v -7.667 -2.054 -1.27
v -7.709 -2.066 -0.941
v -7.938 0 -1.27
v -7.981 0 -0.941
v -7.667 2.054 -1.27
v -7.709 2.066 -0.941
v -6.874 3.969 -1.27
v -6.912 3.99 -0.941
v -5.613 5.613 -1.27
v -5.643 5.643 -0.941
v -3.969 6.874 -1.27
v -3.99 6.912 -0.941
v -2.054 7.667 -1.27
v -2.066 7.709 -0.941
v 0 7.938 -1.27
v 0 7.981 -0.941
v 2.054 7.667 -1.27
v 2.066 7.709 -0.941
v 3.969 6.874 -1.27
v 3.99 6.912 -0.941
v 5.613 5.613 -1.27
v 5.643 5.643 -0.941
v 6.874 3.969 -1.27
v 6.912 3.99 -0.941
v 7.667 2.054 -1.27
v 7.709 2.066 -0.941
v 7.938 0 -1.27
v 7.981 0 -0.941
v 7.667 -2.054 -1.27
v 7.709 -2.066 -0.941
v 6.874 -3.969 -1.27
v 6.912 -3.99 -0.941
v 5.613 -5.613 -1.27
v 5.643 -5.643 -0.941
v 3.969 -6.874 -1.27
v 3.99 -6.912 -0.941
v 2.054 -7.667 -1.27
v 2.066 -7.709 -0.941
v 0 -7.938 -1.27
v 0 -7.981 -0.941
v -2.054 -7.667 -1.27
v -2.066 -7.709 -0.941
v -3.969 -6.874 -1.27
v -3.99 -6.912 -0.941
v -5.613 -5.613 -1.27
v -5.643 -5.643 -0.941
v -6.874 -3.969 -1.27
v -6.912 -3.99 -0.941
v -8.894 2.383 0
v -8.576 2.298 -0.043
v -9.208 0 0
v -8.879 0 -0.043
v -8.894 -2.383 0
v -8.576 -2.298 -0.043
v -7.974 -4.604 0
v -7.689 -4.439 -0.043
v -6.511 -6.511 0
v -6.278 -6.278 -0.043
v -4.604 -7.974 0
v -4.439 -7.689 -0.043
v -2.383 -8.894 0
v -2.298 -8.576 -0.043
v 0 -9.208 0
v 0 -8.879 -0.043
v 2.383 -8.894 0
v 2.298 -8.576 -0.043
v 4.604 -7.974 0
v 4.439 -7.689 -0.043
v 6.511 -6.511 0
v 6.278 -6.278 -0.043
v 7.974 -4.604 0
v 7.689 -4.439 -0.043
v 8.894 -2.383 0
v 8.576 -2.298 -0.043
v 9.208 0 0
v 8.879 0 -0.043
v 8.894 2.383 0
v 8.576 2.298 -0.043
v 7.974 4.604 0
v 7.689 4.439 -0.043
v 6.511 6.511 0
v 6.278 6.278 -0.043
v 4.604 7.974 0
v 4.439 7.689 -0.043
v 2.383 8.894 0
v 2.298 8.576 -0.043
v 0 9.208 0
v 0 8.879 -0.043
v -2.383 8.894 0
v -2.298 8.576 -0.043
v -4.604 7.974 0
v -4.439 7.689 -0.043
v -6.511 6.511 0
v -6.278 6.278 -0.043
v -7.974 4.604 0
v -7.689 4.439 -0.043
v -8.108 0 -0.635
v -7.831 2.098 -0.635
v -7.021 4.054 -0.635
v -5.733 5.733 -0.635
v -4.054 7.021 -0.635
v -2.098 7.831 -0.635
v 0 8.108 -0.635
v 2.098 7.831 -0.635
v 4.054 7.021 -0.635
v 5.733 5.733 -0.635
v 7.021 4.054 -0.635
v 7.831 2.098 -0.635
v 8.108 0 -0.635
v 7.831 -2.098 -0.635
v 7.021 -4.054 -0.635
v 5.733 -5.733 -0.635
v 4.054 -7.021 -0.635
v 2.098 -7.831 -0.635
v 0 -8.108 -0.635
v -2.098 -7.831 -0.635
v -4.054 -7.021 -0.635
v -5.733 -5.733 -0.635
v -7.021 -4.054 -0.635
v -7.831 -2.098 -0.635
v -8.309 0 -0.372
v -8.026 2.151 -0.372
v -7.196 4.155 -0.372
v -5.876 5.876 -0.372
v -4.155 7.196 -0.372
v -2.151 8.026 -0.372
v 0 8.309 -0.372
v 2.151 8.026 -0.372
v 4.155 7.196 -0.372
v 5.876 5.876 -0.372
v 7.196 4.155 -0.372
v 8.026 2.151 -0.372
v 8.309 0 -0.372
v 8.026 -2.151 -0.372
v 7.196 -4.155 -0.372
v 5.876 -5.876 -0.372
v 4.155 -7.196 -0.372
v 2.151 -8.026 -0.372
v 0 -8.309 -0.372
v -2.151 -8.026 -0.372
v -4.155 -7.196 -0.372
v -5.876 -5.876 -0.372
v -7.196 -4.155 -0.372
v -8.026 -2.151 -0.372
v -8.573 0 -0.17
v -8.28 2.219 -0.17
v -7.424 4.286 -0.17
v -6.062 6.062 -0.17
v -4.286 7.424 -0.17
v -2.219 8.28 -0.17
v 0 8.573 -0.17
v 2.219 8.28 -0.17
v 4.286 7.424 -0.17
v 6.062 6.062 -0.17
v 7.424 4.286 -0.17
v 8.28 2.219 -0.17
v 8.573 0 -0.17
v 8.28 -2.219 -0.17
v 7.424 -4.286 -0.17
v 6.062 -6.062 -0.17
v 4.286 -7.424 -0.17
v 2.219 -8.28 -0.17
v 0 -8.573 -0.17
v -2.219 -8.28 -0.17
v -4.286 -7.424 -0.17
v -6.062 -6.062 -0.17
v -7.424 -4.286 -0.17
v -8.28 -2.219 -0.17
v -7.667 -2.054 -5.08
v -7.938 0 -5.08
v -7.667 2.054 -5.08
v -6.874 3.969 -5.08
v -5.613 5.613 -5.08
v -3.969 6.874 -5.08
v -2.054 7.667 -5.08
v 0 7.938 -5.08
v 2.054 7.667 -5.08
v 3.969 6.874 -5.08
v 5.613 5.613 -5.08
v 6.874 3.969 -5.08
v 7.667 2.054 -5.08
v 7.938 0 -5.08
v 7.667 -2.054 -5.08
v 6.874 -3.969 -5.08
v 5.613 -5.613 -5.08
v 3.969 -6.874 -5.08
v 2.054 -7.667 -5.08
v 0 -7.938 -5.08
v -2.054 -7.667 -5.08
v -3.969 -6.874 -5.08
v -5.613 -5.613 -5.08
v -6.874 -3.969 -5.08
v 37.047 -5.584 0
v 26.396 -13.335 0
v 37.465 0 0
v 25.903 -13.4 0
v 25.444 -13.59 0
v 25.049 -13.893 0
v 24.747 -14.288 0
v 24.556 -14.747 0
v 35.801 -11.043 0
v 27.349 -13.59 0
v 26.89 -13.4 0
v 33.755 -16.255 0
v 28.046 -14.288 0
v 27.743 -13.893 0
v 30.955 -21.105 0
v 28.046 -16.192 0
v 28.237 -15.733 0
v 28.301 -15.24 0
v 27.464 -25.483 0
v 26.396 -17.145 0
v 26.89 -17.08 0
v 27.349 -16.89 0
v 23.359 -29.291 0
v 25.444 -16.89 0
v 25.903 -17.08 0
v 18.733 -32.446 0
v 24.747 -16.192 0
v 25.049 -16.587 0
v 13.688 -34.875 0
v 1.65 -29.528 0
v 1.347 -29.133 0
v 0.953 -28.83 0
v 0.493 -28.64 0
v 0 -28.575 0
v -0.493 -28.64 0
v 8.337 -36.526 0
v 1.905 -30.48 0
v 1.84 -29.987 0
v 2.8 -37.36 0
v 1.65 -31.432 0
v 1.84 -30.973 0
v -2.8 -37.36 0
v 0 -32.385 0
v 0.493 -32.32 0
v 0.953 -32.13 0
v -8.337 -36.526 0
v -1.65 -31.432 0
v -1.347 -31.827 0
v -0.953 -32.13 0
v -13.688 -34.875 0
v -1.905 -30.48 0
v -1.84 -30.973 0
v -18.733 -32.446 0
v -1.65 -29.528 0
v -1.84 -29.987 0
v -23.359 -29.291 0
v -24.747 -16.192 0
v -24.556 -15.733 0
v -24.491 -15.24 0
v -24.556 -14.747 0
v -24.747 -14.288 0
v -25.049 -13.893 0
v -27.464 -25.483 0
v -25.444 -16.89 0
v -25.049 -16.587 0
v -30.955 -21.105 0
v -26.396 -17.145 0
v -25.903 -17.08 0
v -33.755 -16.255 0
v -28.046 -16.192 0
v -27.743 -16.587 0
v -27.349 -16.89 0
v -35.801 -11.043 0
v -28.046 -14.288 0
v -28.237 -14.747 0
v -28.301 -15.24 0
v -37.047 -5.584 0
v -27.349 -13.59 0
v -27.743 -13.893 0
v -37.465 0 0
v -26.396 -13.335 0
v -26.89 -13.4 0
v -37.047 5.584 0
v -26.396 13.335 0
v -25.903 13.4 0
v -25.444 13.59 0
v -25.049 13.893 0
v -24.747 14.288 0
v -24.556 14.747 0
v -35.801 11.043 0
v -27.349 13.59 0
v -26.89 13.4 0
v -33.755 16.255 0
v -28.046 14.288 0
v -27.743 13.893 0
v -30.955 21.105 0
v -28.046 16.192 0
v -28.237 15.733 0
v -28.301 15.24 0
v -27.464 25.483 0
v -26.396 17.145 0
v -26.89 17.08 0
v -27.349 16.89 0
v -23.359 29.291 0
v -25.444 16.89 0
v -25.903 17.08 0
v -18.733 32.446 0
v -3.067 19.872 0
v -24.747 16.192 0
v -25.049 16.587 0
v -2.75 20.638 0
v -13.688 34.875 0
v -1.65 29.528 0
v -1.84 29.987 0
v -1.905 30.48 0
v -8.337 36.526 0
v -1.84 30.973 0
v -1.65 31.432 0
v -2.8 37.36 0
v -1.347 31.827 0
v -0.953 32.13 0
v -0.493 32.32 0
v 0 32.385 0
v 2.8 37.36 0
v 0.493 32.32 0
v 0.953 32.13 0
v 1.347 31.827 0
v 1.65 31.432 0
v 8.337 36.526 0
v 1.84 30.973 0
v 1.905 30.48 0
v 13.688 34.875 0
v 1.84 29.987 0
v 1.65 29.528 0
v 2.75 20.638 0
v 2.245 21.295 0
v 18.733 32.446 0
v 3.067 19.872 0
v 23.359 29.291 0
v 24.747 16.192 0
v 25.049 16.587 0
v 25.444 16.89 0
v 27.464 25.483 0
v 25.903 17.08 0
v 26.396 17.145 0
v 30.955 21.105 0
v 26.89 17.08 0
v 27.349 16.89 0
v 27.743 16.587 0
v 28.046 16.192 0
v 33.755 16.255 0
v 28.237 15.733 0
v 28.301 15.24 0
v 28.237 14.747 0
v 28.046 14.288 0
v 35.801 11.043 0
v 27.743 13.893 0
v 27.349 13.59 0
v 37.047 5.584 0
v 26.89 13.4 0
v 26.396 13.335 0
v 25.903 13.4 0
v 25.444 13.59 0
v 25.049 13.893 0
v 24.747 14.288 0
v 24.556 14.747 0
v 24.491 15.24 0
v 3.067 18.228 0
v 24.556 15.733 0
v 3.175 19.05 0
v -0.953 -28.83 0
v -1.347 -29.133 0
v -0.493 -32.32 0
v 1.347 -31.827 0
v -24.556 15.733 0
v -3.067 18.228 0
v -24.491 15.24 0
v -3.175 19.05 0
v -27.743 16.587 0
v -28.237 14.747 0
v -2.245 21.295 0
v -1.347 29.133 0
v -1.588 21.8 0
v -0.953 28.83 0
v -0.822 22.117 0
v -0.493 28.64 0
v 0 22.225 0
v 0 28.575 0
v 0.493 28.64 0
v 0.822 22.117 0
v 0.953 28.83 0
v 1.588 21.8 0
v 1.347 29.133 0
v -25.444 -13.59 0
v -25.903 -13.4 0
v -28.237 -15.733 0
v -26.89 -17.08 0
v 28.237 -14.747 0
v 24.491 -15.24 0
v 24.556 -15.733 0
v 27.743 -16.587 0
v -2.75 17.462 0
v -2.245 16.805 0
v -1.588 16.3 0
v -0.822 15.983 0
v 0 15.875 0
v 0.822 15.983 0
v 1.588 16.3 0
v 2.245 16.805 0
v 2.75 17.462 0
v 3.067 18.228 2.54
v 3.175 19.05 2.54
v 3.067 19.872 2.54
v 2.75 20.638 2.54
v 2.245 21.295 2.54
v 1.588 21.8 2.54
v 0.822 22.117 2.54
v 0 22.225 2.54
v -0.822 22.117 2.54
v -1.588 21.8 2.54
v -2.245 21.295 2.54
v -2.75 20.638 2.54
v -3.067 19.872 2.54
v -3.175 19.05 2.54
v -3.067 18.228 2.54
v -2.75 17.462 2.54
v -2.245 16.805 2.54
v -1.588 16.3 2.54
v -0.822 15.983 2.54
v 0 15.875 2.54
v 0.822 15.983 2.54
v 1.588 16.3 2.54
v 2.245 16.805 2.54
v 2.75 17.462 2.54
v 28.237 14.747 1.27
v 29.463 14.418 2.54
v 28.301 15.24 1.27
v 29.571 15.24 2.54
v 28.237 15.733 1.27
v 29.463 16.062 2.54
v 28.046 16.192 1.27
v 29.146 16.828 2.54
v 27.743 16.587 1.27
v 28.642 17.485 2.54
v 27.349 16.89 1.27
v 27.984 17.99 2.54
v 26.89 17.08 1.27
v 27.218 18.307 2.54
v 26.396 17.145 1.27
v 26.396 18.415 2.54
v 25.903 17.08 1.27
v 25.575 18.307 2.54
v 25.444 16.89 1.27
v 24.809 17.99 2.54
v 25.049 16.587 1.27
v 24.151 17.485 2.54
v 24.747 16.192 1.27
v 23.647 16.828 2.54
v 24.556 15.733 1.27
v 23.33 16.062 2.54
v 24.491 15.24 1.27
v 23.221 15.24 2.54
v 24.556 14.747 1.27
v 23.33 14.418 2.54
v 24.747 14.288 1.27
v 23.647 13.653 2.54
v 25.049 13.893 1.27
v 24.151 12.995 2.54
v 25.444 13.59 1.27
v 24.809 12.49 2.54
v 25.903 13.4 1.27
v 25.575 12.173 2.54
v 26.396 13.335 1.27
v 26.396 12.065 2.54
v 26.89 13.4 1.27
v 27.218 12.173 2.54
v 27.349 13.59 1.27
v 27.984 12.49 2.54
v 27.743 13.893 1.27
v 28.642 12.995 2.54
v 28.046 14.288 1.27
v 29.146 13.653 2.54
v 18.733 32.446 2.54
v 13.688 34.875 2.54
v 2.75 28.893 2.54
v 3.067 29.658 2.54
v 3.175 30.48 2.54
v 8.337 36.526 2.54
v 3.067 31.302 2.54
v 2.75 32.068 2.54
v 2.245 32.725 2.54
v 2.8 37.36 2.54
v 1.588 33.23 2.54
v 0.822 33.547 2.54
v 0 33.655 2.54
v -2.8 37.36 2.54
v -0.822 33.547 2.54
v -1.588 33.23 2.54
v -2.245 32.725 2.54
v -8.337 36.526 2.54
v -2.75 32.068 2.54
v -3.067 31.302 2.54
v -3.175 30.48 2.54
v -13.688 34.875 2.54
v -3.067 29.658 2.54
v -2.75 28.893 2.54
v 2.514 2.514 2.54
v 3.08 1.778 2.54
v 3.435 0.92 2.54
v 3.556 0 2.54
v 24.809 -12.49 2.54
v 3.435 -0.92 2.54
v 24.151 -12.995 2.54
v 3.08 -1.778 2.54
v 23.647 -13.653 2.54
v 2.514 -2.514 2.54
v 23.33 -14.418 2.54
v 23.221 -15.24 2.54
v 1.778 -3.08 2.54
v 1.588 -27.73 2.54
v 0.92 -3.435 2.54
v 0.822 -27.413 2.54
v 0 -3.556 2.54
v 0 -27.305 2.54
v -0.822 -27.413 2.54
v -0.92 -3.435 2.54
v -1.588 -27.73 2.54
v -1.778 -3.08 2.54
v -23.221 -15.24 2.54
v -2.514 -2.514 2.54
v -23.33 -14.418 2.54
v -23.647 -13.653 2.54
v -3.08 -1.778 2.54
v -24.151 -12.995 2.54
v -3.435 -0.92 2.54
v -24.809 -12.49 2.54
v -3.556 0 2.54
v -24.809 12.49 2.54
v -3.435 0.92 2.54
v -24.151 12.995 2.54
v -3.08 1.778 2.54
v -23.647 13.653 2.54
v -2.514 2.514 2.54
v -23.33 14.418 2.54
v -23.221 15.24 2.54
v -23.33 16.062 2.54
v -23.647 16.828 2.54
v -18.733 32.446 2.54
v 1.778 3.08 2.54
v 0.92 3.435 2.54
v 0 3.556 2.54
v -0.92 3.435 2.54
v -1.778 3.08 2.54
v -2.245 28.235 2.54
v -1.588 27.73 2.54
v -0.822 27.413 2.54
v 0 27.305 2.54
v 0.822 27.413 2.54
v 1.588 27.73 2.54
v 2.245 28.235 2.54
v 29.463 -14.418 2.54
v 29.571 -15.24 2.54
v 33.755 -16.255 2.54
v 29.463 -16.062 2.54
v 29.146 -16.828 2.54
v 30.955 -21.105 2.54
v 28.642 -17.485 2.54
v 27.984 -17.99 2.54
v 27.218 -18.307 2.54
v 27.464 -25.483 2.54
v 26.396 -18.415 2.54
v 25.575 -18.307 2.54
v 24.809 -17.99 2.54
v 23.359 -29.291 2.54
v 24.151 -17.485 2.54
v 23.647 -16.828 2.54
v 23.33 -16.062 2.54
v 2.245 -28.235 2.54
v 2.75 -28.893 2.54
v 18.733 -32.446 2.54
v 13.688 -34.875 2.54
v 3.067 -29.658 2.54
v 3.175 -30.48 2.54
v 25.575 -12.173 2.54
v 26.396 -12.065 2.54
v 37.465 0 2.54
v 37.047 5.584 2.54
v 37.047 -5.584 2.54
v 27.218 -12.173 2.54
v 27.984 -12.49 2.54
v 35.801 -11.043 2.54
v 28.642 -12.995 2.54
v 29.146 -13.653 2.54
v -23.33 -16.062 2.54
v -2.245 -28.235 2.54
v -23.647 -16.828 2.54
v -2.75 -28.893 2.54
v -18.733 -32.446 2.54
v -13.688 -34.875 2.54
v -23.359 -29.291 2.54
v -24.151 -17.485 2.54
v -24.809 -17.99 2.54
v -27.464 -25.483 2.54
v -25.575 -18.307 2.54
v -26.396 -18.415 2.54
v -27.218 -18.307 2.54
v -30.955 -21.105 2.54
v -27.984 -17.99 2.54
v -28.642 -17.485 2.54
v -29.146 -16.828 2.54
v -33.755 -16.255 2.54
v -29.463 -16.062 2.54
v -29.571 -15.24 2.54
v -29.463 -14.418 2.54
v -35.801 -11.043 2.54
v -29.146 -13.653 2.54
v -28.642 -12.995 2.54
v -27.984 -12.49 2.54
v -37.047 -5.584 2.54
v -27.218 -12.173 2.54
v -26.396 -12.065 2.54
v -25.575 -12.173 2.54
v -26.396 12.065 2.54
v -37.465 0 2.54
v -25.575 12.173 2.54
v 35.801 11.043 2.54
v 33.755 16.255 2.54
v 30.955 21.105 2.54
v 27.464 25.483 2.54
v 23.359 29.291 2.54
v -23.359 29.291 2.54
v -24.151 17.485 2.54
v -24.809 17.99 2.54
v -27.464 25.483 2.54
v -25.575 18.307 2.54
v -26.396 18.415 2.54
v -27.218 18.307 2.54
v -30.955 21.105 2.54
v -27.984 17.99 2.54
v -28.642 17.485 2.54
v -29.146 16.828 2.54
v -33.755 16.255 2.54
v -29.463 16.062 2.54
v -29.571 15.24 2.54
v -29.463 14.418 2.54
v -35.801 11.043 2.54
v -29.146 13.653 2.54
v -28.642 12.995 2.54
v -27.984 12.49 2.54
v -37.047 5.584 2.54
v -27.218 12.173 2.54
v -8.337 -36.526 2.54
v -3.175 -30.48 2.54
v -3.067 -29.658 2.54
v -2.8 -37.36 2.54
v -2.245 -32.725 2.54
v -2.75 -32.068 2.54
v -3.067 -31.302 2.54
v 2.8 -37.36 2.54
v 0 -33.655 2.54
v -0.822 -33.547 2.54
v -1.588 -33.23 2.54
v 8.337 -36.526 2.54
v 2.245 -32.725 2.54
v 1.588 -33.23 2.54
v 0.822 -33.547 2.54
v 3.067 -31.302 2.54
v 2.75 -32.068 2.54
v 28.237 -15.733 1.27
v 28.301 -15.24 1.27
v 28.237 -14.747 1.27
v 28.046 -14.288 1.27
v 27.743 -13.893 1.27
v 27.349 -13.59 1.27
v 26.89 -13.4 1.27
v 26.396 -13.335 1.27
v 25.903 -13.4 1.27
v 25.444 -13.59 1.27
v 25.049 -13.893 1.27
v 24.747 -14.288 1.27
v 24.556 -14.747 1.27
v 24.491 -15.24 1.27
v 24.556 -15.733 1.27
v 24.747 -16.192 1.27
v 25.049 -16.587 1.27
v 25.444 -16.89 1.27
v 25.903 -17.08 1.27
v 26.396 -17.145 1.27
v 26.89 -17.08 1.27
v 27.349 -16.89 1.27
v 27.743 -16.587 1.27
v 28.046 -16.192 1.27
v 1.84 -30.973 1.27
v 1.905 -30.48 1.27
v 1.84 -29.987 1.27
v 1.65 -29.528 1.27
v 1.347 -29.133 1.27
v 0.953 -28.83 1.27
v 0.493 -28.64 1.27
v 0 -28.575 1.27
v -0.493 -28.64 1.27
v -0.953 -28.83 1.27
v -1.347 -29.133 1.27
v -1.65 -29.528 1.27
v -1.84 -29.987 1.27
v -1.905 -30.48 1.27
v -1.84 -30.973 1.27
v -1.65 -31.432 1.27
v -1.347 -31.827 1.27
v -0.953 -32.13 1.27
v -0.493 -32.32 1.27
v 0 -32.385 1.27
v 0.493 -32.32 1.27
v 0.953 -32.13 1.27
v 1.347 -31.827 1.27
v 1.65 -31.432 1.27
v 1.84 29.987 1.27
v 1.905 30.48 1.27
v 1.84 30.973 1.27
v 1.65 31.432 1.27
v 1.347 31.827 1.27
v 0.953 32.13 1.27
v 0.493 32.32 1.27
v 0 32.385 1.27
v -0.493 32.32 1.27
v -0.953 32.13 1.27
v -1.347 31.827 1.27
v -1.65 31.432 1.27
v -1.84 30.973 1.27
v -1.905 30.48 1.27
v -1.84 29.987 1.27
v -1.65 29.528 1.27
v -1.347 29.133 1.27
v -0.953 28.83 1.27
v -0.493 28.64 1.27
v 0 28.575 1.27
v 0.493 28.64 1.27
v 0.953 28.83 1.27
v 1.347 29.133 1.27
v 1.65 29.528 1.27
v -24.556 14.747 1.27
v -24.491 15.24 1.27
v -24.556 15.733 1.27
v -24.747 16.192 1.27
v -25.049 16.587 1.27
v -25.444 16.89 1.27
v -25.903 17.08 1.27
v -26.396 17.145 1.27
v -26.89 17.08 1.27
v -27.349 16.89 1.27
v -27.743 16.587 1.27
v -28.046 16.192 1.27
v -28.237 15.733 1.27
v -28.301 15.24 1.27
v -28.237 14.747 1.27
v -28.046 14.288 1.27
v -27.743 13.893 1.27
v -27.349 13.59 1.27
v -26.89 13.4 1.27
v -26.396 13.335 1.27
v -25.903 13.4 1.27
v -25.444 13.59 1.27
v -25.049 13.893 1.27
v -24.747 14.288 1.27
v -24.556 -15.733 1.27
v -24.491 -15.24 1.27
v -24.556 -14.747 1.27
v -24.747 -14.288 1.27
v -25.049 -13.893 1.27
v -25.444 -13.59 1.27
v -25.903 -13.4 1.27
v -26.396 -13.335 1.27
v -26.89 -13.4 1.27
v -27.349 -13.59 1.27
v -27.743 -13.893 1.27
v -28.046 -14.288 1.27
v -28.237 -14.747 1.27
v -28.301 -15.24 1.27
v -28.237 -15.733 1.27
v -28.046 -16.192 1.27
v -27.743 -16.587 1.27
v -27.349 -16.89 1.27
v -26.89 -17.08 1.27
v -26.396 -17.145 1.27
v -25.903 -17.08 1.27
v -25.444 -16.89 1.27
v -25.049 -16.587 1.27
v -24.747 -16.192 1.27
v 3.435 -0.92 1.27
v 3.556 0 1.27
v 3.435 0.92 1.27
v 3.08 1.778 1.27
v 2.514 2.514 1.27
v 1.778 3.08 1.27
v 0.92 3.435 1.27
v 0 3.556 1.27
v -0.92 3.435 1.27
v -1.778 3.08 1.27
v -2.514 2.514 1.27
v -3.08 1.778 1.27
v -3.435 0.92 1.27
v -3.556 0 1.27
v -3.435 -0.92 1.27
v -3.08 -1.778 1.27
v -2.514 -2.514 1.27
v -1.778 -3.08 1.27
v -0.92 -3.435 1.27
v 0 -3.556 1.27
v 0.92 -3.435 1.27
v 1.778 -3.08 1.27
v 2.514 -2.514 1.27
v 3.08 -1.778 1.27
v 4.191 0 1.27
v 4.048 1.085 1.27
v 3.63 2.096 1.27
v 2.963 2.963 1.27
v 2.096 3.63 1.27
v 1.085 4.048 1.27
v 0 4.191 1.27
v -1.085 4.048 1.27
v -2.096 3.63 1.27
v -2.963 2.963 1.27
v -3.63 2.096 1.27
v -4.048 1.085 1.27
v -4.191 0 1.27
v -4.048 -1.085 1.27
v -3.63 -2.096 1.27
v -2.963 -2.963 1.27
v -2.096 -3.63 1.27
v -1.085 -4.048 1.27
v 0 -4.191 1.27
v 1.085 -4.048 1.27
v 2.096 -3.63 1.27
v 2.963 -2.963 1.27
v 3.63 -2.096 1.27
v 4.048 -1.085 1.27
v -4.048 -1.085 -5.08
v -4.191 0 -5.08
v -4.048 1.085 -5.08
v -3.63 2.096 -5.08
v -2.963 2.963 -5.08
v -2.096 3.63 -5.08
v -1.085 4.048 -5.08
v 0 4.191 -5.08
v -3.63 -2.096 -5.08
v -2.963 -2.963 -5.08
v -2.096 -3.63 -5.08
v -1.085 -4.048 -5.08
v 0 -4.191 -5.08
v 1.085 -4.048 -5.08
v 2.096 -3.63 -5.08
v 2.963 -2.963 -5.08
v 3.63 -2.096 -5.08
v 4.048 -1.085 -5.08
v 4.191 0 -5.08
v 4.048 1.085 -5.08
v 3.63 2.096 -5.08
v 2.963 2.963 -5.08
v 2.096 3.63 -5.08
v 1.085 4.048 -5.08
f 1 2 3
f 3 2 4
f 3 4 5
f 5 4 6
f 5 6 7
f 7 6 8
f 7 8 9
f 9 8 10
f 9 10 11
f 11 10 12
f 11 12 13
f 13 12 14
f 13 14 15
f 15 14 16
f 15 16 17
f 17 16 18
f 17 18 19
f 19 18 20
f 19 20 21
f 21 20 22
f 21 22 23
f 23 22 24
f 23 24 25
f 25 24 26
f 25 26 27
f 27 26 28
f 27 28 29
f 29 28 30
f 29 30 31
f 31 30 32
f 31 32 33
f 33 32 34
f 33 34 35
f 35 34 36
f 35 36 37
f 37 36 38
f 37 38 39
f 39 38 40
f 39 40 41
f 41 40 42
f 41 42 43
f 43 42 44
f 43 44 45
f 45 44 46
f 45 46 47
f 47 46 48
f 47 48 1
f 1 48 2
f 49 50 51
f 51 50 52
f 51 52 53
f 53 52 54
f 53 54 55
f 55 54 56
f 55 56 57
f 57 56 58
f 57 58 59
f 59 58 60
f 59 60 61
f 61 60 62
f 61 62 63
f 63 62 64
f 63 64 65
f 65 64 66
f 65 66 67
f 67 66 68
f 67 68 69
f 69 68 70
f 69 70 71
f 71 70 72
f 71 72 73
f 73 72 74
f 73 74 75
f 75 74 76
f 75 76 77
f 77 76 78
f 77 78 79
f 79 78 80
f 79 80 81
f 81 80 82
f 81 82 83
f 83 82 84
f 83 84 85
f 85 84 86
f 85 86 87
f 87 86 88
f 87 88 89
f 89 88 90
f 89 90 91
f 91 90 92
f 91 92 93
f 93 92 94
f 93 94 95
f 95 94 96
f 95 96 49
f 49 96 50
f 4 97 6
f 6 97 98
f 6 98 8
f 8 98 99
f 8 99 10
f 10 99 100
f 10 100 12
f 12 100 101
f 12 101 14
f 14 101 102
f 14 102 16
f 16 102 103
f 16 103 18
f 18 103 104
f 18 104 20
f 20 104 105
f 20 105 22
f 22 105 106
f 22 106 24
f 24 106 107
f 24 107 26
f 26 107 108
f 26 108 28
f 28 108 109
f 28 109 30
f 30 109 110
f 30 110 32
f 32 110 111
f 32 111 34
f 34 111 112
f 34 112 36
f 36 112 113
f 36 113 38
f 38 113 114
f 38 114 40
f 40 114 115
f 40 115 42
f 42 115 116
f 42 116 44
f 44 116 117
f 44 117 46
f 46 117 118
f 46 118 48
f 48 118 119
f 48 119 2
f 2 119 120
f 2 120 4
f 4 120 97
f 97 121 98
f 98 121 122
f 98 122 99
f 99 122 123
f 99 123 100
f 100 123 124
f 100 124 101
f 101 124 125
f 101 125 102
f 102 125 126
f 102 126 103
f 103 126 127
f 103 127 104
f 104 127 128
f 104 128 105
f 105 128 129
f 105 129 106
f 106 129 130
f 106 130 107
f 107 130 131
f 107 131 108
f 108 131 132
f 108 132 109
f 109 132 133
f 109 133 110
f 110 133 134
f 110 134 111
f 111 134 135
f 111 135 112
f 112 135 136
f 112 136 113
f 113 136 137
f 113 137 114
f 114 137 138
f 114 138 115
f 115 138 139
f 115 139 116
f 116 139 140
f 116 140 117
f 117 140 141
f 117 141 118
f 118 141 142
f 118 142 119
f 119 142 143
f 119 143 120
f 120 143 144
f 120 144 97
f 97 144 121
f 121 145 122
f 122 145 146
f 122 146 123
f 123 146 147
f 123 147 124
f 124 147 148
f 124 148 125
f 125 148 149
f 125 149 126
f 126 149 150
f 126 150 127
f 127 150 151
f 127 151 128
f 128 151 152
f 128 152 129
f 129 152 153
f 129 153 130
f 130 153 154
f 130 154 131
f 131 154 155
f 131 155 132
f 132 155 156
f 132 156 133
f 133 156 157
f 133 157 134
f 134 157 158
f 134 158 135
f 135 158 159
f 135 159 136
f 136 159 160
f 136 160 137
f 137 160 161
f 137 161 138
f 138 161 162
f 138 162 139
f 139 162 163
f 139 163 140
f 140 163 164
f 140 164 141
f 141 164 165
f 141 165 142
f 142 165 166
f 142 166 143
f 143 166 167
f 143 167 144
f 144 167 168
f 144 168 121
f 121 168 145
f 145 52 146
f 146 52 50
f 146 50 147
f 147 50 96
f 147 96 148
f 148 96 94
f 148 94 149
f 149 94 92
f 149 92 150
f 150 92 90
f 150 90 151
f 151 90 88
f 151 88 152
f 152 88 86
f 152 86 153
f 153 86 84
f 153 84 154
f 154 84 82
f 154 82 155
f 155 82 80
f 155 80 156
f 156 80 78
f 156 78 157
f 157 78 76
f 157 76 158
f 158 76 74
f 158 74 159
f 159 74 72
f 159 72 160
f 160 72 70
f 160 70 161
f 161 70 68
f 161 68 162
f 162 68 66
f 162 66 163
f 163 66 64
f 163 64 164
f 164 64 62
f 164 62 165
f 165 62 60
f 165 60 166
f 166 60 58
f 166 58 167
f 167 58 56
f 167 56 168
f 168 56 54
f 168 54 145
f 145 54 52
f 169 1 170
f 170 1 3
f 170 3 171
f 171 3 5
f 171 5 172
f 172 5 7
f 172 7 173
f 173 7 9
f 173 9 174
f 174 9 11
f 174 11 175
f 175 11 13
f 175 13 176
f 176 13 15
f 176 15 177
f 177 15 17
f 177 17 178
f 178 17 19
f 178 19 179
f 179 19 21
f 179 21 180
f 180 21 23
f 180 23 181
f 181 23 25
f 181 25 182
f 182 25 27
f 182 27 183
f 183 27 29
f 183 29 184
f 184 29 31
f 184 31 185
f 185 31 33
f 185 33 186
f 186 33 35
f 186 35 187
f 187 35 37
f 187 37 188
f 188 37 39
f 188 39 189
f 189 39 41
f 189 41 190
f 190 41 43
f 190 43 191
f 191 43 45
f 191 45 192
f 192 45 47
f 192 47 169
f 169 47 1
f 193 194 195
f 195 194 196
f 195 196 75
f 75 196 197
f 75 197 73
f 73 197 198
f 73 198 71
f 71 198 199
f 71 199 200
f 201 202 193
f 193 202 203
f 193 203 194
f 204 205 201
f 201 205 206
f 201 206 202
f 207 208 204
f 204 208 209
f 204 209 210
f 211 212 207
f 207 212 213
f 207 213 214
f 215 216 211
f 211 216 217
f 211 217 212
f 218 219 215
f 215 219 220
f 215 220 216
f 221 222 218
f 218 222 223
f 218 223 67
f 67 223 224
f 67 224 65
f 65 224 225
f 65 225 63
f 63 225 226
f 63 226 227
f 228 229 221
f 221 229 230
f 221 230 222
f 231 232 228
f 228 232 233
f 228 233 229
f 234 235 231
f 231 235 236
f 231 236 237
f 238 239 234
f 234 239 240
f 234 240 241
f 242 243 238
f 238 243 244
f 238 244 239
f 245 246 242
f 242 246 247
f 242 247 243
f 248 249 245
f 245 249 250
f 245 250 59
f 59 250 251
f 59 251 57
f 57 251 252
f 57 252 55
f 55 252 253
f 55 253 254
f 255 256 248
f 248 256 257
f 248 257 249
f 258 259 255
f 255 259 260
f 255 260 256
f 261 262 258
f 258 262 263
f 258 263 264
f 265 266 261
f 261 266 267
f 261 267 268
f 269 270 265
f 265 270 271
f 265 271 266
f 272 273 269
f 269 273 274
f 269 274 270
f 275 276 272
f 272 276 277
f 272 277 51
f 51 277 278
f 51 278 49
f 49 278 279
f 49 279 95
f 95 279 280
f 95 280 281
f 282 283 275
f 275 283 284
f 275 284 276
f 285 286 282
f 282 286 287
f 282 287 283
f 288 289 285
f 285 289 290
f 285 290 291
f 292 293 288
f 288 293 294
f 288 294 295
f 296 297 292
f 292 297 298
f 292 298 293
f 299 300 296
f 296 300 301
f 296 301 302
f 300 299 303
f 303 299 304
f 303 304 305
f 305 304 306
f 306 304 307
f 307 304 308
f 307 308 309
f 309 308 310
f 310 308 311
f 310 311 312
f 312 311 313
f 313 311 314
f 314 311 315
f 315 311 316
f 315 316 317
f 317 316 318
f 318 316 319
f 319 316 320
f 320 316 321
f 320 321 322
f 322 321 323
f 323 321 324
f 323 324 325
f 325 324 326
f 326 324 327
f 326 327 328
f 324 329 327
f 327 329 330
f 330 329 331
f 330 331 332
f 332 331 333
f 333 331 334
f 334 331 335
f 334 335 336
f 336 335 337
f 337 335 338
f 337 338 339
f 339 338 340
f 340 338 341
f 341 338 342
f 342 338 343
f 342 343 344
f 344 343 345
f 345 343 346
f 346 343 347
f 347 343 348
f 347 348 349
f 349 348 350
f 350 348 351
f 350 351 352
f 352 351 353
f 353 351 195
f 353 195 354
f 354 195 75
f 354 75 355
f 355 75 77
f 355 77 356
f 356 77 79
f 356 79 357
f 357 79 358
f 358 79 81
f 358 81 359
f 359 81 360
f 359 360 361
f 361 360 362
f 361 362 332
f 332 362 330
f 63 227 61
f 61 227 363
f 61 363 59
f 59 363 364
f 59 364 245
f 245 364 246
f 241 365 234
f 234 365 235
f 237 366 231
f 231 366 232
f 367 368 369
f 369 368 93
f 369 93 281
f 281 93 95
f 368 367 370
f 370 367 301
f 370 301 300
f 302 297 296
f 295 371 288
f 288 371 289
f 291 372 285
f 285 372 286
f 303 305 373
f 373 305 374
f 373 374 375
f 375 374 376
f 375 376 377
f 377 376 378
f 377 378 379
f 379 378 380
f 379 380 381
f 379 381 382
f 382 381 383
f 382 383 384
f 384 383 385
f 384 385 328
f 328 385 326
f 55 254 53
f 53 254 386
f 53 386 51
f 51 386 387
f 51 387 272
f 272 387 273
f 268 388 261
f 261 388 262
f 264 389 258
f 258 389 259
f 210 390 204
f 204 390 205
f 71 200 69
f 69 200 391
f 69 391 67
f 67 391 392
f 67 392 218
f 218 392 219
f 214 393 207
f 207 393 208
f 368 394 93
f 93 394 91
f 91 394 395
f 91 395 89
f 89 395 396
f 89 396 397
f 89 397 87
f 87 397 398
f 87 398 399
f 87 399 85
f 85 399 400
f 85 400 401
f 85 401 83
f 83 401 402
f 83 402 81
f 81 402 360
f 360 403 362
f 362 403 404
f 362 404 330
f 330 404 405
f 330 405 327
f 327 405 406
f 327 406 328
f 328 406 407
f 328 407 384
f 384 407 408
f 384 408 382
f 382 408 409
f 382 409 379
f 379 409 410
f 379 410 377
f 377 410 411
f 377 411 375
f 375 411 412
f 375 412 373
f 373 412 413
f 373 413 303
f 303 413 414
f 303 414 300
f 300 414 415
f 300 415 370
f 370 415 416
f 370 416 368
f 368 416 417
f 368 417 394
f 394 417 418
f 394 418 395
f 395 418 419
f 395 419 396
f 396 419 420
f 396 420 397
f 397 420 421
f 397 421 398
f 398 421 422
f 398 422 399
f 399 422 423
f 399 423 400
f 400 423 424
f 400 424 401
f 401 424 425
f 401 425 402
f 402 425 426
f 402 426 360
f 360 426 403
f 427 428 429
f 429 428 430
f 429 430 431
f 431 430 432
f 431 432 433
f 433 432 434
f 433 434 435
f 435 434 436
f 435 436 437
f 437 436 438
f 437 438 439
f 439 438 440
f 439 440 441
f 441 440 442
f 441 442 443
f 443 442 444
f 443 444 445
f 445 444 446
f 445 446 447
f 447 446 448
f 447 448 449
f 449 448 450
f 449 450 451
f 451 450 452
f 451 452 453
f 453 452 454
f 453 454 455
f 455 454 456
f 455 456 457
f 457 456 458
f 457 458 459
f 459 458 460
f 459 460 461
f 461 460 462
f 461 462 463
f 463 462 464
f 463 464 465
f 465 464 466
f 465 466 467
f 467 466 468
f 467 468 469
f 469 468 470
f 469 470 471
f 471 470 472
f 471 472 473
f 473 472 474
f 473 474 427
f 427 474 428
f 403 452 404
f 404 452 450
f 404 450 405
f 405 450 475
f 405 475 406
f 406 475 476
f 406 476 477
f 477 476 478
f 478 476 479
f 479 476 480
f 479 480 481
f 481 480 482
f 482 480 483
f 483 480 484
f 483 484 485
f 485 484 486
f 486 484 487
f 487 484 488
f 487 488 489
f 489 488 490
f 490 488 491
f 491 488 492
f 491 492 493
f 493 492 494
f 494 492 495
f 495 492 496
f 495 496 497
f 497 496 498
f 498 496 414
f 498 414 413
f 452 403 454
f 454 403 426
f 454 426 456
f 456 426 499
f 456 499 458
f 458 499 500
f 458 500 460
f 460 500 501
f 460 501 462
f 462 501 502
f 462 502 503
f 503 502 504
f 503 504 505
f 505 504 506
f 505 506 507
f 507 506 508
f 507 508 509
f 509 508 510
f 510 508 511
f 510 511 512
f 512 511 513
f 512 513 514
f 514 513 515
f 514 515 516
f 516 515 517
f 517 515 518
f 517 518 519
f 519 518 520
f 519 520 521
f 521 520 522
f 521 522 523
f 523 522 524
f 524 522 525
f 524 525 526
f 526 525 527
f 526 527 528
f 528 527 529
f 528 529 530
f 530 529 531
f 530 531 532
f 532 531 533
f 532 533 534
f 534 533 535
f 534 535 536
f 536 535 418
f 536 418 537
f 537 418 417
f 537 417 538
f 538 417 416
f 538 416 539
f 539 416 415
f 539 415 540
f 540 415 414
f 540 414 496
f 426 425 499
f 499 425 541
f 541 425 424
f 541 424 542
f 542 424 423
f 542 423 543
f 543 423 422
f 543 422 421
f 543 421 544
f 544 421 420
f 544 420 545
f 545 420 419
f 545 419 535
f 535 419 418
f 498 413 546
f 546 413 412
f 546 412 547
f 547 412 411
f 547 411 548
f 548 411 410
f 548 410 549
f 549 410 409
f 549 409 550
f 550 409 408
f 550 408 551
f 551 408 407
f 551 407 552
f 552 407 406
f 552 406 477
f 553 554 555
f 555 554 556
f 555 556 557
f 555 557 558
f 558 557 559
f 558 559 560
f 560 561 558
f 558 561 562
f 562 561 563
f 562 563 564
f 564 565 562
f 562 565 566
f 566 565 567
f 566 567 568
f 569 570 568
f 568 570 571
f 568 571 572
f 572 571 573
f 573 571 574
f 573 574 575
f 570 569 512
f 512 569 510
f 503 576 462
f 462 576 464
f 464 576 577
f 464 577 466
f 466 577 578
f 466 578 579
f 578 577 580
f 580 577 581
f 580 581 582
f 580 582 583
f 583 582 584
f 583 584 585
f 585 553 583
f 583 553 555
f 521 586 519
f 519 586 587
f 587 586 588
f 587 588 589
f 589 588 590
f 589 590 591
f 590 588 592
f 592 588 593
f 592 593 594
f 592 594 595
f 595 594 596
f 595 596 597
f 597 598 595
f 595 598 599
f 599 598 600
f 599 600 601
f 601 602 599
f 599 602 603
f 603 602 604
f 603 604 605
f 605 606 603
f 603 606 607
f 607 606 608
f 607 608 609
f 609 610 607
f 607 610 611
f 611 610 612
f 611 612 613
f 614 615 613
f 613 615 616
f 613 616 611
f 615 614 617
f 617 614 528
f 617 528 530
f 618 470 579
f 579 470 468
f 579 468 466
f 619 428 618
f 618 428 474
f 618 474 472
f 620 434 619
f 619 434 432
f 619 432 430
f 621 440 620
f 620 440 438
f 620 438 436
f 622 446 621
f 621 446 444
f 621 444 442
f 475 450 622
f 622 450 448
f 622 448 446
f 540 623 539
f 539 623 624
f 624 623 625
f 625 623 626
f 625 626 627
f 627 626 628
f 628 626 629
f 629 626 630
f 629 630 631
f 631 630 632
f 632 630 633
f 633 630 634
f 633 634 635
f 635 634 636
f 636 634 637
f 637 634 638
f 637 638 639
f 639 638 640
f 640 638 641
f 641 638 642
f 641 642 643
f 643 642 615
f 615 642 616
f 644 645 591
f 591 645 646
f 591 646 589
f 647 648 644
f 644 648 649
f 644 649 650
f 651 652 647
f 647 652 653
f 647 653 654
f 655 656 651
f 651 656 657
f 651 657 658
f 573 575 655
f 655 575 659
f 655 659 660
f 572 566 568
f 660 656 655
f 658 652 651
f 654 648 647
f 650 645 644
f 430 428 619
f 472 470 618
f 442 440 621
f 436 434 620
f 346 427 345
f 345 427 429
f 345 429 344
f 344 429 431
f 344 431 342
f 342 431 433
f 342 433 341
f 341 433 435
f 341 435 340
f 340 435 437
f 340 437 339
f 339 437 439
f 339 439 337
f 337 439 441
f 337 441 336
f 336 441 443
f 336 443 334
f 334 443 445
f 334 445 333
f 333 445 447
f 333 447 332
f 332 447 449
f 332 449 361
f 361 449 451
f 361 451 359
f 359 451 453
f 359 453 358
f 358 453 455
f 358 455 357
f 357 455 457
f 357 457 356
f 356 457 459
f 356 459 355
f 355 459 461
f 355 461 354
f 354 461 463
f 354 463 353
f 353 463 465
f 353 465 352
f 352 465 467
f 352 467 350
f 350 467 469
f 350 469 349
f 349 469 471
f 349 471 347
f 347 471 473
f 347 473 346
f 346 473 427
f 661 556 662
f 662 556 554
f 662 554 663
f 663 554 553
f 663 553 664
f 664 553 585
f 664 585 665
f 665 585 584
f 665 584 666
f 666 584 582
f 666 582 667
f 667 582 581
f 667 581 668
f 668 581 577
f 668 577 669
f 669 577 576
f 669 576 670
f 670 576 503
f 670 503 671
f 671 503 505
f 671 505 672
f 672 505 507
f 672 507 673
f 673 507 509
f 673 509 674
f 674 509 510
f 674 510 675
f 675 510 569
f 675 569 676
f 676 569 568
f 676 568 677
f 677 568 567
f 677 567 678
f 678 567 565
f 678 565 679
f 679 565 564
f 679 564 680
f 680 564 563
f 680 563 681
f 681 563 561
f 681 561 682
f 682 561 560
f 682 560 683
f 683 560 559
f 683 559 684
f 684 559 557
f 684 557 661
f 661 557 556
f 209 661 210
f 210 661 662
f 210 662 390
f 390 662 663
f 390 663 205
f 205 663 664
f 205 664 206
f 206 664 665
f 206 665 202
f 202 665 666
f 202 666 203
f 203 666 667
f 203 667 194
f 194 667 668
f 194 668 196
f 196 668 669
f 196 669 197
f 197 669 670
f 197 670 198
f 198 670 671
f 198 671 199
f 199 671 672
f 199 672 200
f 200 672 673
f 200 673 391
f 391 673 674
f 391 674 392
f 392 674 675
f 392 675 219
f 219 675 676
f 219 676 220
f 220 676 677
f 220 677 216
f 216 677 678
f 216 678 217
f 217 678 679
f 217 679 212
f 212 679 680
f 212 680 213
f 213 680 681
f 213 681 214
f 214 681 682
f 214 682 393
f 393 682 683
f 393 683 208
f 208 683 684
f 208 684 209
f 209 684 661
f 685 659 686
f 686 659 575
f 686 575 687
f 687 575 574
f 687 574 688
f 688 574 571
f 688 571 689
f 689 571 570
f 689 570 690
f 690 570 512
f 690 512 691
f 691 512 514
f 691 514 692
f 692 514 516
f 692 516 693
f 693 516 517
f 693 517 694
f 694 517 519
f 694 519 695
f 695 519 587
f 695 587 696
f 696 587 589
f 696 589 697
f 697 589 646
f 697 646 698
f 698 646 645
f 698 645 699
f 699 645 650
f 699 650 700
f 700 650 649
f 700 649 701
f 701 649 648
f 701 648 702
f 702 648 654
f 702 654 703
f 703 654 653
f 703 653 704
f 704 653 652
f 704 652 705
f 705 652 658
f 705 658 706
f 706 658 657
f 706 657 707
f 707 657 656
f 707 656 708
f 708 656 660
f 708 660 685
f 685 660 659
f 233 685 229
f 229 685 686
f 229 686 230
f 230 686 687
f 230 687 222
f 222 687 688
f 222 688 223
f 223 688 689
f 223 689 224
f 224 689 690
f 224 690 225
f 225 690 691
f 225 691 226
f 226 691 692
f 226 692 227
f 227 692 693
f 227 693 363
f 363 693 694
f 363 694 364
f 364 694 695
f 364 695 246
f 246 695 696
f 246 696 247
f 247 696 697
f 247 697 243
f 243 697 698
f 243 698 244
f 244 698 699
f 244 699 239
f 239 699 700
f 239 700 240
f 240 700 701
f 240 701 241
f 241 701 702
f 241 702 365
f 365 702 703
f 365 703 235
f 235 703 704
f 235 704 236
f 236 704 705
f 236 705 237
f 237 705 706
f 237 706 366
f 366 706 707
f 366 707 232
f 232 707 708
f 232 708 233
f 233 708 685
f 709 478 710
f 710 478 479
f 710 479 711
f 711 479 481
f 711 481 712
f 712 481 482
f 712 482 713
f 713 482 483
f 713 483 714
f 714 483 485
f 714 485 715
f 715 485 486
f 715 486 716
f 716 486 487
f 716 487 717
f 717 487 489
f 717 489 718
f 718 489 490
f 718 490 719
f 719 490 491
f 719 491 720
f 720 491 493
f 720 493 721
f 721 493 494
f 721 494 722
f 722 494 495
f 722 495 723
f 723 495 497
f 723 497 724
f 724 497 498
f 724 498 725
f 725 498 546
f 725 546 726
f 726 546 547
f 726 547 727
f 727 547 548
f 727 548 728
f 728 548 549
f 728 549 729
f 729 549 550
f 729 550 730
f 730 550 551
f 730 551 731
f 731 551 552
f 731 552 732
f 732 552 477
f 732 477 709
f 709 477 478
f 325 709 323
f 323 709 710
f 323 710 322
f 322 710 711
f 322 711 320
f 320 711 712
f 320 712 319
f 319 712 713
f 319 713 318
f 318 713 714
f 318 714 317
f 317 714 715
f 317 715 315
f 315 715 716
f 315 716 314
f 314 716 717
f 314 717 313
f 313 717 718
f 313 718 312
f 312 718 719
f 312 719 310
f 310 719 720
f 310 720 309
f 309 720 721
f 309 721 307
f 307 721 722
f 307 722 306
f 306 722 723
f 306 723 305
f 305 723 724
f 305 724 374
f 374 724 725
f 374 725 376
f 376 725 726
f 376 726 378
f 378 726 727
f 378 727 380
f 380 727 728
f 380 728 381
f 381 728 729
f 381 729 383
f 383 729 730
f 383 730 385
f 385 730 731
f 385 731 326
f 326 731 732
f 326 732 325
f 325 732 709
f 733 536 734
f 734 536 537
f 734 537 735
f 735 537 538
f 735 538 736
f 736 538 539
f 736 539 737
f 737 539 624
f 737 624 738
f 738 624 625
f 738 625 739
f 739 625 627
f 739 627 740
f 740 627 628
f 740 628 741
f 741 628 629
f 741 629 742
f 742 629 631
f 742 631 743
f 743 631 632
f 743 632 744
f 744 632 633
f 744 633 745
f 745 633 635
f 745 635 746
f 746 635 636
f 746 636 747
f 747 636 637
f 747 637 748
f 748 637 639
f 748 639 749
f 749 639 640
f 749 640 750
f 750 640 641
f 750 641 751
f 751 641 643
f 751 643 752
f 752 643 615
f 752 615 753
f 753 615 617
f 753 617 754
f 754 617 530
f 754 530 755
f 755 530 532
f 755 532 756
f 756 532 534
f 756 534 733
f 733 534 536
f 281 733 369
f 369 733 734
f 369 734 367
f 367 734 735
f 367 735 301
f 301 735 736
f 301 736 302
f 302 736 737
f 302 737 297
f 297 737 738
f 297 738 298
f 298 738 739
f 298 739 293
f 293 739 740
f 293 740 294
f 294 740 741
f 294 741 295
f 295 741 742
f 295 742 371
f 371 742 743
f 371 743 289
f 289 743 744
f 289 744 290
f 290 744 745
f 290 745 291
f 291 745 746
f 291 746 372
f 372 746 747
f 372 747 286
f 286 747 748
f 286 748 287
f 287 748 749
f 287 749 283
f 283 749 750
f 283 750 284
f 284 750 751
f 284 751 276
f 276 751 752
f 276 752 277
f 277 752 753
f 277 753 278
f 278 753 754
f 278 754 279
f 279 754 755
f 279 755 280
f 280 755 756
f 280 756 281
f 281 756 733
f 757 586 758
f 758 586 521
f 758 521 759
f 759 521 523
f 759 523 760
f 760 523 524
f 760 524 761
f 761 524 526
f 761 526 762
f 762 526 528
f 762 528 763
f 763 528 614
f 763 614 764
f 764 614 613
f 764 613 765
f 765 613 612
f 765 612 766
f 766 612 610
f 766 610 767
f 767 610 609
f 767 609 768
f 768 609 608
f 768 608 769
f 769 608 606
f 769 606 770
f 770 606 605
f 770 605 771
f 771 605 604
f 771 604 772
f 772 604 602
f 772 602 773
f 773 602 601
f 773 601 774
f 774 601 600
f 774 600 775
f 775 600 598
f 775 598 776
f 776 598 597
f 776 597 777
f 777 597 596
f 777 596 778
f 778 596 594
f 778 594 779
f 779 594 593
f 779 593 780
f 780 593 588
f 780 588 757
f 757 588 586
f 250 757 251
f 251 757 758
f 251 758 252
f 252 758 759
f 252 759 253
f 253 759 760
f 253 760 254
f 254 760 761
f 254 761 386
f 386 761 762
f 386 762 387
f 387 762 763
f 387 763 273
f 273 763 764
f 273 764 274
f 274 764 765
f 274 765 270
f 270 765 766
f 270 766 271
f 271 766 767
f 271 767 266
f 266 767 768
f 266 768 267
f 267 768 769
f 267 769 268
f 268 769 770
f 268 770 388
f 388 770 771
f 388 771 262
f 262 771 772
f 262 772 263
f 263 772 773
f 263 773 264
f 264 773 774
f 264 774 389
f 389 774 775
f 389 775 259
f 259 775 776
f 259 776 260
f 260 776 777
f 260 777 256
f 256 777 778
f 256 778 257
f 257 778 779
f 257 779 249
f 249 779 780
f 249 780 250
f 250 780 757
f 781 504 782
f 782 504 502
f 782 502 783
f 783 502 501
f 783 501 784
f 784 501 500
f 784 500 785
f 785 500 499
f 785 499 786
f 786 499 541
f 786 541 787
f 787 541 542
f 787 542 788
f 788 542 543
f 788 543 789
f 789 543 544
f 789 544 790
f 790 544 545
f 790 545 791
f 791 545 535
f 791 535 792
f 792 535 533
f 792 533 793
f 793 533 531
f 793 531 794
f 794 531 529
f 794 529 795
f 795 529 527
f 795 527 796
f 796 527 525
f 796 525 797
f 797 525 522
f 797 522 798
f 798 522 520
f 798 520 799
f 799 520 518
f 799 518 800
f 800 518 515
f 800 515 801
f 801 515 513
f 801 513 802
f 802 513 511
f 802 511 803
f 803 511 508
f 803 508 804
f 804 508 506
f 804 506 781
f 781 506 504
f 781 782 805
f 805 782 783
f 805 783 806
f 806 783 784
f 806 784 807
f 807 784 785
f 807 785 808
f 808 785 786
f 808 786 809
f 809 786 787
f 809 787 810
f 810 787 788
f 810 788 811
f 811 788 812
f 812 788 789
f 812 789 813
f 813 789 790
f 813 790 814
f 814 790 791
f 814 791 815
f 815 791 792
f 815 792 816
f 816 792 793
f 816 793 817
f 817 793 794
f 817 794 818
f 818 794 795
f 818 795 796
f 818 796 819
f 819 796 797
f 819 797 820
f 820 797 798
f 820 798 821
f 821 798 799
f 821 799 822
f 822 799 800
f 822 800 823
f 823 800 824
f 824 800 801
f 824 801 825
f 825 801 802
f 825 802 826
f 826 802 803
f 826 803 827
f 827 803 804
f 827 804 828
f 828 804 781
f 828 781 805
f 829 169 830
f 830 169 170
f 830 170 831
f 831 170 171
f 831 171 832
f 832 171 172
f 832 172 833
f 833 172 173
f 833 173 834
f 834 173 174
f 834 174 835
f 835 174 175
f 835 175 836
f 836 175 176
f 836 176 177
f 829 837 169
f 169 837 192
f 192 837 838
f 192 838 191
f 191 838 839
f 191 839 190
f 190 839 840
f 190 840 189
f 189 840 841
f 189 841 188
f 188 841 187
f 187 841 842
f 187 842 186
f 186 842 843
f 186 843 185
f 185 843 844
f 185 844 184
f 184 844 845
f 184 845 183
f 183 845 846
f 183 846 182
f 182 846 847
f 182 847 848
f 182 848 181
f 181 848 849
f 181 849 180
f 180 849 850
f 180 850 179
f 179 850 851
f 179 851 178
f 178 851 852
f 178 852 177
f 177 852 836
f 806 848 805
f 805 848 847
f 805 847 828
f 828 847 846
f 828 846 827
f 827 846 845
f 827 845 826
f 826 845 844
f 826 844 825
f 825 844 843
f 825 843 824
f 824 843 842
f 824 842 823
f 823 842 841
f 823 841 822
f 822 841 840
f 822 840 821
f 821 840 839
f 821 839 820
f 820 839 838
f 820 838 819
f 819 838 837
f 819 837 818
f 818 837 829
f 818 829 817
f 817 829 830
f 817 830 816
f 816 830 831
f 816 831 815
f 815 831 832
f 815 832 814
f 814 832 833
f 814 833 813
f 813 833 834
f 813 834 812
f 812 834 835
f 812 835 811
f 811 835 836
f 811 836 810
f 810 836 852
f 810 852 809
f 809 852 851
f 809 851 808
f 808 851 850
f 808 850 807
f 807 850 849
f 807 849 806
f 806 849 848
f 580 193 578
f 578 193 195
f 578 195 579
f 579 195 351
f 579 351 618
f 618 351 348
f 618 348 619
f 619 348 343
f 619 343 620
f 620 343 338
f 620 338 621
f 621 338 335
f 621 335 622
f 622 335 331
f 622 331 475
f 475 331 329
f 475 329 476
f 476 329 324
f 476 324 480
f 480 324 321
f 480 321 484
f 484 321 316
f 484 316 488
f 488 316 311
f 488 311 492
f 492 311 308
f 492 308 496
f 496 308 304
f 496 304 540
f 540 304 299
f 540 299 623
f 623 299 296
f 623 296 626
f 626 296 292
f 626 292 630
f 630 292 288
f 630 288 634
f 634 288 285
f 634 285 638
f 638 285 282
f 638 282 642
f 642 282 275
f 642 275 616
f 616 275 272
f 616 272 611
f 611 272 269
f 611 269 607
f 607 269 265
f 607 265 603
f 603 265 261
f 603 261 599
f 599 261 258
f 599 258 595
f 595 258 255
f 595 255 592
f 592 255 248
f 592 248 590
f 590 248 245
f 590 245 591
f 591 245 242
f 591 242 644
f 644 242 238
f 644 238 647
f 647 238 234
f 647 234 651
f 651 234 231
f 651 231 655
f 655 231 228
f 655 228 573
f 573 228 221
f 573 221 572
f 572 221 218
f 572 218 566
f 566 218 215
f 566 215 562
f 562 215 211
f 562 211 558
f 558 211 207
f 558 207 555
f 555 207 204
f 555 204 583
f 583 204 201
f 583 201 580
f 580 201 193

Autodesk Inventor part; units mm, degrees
ref_plane "YZ Plane" through (0, 0, 0) normal (1, 0, 0) x (0, 1, 0)
ref_plane "XZ Plane" through (0, 0, 0) normal (0, 1, 0) x (-1, 0, 0)
ref_plane "XY Plane" through (0, 0, 0) normal (0, 0, 1) x (1, 0, 0)
sketch "Sketch1" plane through (0, 0, 0) normal (0, 0, 1) x (1, 0, 0)
  circle A0 centre (0, 0) radius 37.465
  dimension "d0" = 74.93
extrude "Extrusion1" add sketch "Sketch1" along normal blind 2.54
sketch "Sketch3" plane through (0, 0, 0) normal (0, 0, -1) x (-1, 0, 0)
  circle A0 centre (0, 0) radius 4.191
  circle A1 centre (0, 0) radius 7.9375
  circle A2 centre (0, 0) radius 2.3813
  dimension "d4" = 8.382
  dimension "d5" = 15.875
  dimension "d6" = 4.7625
extrude "Extrusion3" cut sketch "Sketch3" against normal through all contours A0 | A2
extrude "Extrusion4" add sketch "Sketch3" along normal blind 5.08 contours A1
sketch "Sketch4" plane through (0, 0, 2.54) normal (0, 0, 1) x (1, 0, 0)
  line L0 (0, 0) -> (0, 30.48)
  circle A0 centre (0, 30.48) radius 1.905
  circle A1 centre (-26.3965, 15.24) radius 1.905
  circle A2 centre (-26.3965, -15.24) radius 1.905
  circle A3 centre (0, -30.48) radius 1.905
  circle A4 centre (26.3965, -15.24) radius 1.905
  circle A5 centre (26.3965, 15.24) radius 1.905
  dimension "d13" = 30.48
  dimension "d14" = 3.81
  dimension "d17" = 360
extrude "Extrusion5" cut sketch "Sketch4" against normal blind 25.4
sketch "Sketch6" plane through (0, 0, 2.54) normal (0, 0, 1) x (1, 0, 0)
  circle A0 centre (0, 0) radius 3.556
  circle A1 centre (0, 0) radius 4.191 projected
  dimension "d21" = 7.112
extrude "Extrusion6" add sketch "Sketch6" against normal blind 1.27
chamfer "Chamfer1" distance 1.27 angle 45 6 edges at (-28.3015, -15.24, 2.54) (-28.3015, 15.24, 2.54) (-1.905, 30.48, 2.54) (-1.905, -30.48, 2.54) (24.4915, -15.24, 2.54) (24.4915, 15.24, 2.54)
sketch "Sketch7" plane through (0, 0, 2.54) normal (0, 0, 1) x (1, 0, 0)
  circle A0 centre (0, 19.05) radius 3.175
  point P0 (0, 0)
  dimension "d27" = 6.35
  dimension "d28" = 19.05
extrude "Extrusion7" cut sketch "Sketch7" against normal through all
fillet "Fillet1" radius 1.27 1 edges at (7.9375, 0, 0)
properties part number "SpoolEndFrontSide"
